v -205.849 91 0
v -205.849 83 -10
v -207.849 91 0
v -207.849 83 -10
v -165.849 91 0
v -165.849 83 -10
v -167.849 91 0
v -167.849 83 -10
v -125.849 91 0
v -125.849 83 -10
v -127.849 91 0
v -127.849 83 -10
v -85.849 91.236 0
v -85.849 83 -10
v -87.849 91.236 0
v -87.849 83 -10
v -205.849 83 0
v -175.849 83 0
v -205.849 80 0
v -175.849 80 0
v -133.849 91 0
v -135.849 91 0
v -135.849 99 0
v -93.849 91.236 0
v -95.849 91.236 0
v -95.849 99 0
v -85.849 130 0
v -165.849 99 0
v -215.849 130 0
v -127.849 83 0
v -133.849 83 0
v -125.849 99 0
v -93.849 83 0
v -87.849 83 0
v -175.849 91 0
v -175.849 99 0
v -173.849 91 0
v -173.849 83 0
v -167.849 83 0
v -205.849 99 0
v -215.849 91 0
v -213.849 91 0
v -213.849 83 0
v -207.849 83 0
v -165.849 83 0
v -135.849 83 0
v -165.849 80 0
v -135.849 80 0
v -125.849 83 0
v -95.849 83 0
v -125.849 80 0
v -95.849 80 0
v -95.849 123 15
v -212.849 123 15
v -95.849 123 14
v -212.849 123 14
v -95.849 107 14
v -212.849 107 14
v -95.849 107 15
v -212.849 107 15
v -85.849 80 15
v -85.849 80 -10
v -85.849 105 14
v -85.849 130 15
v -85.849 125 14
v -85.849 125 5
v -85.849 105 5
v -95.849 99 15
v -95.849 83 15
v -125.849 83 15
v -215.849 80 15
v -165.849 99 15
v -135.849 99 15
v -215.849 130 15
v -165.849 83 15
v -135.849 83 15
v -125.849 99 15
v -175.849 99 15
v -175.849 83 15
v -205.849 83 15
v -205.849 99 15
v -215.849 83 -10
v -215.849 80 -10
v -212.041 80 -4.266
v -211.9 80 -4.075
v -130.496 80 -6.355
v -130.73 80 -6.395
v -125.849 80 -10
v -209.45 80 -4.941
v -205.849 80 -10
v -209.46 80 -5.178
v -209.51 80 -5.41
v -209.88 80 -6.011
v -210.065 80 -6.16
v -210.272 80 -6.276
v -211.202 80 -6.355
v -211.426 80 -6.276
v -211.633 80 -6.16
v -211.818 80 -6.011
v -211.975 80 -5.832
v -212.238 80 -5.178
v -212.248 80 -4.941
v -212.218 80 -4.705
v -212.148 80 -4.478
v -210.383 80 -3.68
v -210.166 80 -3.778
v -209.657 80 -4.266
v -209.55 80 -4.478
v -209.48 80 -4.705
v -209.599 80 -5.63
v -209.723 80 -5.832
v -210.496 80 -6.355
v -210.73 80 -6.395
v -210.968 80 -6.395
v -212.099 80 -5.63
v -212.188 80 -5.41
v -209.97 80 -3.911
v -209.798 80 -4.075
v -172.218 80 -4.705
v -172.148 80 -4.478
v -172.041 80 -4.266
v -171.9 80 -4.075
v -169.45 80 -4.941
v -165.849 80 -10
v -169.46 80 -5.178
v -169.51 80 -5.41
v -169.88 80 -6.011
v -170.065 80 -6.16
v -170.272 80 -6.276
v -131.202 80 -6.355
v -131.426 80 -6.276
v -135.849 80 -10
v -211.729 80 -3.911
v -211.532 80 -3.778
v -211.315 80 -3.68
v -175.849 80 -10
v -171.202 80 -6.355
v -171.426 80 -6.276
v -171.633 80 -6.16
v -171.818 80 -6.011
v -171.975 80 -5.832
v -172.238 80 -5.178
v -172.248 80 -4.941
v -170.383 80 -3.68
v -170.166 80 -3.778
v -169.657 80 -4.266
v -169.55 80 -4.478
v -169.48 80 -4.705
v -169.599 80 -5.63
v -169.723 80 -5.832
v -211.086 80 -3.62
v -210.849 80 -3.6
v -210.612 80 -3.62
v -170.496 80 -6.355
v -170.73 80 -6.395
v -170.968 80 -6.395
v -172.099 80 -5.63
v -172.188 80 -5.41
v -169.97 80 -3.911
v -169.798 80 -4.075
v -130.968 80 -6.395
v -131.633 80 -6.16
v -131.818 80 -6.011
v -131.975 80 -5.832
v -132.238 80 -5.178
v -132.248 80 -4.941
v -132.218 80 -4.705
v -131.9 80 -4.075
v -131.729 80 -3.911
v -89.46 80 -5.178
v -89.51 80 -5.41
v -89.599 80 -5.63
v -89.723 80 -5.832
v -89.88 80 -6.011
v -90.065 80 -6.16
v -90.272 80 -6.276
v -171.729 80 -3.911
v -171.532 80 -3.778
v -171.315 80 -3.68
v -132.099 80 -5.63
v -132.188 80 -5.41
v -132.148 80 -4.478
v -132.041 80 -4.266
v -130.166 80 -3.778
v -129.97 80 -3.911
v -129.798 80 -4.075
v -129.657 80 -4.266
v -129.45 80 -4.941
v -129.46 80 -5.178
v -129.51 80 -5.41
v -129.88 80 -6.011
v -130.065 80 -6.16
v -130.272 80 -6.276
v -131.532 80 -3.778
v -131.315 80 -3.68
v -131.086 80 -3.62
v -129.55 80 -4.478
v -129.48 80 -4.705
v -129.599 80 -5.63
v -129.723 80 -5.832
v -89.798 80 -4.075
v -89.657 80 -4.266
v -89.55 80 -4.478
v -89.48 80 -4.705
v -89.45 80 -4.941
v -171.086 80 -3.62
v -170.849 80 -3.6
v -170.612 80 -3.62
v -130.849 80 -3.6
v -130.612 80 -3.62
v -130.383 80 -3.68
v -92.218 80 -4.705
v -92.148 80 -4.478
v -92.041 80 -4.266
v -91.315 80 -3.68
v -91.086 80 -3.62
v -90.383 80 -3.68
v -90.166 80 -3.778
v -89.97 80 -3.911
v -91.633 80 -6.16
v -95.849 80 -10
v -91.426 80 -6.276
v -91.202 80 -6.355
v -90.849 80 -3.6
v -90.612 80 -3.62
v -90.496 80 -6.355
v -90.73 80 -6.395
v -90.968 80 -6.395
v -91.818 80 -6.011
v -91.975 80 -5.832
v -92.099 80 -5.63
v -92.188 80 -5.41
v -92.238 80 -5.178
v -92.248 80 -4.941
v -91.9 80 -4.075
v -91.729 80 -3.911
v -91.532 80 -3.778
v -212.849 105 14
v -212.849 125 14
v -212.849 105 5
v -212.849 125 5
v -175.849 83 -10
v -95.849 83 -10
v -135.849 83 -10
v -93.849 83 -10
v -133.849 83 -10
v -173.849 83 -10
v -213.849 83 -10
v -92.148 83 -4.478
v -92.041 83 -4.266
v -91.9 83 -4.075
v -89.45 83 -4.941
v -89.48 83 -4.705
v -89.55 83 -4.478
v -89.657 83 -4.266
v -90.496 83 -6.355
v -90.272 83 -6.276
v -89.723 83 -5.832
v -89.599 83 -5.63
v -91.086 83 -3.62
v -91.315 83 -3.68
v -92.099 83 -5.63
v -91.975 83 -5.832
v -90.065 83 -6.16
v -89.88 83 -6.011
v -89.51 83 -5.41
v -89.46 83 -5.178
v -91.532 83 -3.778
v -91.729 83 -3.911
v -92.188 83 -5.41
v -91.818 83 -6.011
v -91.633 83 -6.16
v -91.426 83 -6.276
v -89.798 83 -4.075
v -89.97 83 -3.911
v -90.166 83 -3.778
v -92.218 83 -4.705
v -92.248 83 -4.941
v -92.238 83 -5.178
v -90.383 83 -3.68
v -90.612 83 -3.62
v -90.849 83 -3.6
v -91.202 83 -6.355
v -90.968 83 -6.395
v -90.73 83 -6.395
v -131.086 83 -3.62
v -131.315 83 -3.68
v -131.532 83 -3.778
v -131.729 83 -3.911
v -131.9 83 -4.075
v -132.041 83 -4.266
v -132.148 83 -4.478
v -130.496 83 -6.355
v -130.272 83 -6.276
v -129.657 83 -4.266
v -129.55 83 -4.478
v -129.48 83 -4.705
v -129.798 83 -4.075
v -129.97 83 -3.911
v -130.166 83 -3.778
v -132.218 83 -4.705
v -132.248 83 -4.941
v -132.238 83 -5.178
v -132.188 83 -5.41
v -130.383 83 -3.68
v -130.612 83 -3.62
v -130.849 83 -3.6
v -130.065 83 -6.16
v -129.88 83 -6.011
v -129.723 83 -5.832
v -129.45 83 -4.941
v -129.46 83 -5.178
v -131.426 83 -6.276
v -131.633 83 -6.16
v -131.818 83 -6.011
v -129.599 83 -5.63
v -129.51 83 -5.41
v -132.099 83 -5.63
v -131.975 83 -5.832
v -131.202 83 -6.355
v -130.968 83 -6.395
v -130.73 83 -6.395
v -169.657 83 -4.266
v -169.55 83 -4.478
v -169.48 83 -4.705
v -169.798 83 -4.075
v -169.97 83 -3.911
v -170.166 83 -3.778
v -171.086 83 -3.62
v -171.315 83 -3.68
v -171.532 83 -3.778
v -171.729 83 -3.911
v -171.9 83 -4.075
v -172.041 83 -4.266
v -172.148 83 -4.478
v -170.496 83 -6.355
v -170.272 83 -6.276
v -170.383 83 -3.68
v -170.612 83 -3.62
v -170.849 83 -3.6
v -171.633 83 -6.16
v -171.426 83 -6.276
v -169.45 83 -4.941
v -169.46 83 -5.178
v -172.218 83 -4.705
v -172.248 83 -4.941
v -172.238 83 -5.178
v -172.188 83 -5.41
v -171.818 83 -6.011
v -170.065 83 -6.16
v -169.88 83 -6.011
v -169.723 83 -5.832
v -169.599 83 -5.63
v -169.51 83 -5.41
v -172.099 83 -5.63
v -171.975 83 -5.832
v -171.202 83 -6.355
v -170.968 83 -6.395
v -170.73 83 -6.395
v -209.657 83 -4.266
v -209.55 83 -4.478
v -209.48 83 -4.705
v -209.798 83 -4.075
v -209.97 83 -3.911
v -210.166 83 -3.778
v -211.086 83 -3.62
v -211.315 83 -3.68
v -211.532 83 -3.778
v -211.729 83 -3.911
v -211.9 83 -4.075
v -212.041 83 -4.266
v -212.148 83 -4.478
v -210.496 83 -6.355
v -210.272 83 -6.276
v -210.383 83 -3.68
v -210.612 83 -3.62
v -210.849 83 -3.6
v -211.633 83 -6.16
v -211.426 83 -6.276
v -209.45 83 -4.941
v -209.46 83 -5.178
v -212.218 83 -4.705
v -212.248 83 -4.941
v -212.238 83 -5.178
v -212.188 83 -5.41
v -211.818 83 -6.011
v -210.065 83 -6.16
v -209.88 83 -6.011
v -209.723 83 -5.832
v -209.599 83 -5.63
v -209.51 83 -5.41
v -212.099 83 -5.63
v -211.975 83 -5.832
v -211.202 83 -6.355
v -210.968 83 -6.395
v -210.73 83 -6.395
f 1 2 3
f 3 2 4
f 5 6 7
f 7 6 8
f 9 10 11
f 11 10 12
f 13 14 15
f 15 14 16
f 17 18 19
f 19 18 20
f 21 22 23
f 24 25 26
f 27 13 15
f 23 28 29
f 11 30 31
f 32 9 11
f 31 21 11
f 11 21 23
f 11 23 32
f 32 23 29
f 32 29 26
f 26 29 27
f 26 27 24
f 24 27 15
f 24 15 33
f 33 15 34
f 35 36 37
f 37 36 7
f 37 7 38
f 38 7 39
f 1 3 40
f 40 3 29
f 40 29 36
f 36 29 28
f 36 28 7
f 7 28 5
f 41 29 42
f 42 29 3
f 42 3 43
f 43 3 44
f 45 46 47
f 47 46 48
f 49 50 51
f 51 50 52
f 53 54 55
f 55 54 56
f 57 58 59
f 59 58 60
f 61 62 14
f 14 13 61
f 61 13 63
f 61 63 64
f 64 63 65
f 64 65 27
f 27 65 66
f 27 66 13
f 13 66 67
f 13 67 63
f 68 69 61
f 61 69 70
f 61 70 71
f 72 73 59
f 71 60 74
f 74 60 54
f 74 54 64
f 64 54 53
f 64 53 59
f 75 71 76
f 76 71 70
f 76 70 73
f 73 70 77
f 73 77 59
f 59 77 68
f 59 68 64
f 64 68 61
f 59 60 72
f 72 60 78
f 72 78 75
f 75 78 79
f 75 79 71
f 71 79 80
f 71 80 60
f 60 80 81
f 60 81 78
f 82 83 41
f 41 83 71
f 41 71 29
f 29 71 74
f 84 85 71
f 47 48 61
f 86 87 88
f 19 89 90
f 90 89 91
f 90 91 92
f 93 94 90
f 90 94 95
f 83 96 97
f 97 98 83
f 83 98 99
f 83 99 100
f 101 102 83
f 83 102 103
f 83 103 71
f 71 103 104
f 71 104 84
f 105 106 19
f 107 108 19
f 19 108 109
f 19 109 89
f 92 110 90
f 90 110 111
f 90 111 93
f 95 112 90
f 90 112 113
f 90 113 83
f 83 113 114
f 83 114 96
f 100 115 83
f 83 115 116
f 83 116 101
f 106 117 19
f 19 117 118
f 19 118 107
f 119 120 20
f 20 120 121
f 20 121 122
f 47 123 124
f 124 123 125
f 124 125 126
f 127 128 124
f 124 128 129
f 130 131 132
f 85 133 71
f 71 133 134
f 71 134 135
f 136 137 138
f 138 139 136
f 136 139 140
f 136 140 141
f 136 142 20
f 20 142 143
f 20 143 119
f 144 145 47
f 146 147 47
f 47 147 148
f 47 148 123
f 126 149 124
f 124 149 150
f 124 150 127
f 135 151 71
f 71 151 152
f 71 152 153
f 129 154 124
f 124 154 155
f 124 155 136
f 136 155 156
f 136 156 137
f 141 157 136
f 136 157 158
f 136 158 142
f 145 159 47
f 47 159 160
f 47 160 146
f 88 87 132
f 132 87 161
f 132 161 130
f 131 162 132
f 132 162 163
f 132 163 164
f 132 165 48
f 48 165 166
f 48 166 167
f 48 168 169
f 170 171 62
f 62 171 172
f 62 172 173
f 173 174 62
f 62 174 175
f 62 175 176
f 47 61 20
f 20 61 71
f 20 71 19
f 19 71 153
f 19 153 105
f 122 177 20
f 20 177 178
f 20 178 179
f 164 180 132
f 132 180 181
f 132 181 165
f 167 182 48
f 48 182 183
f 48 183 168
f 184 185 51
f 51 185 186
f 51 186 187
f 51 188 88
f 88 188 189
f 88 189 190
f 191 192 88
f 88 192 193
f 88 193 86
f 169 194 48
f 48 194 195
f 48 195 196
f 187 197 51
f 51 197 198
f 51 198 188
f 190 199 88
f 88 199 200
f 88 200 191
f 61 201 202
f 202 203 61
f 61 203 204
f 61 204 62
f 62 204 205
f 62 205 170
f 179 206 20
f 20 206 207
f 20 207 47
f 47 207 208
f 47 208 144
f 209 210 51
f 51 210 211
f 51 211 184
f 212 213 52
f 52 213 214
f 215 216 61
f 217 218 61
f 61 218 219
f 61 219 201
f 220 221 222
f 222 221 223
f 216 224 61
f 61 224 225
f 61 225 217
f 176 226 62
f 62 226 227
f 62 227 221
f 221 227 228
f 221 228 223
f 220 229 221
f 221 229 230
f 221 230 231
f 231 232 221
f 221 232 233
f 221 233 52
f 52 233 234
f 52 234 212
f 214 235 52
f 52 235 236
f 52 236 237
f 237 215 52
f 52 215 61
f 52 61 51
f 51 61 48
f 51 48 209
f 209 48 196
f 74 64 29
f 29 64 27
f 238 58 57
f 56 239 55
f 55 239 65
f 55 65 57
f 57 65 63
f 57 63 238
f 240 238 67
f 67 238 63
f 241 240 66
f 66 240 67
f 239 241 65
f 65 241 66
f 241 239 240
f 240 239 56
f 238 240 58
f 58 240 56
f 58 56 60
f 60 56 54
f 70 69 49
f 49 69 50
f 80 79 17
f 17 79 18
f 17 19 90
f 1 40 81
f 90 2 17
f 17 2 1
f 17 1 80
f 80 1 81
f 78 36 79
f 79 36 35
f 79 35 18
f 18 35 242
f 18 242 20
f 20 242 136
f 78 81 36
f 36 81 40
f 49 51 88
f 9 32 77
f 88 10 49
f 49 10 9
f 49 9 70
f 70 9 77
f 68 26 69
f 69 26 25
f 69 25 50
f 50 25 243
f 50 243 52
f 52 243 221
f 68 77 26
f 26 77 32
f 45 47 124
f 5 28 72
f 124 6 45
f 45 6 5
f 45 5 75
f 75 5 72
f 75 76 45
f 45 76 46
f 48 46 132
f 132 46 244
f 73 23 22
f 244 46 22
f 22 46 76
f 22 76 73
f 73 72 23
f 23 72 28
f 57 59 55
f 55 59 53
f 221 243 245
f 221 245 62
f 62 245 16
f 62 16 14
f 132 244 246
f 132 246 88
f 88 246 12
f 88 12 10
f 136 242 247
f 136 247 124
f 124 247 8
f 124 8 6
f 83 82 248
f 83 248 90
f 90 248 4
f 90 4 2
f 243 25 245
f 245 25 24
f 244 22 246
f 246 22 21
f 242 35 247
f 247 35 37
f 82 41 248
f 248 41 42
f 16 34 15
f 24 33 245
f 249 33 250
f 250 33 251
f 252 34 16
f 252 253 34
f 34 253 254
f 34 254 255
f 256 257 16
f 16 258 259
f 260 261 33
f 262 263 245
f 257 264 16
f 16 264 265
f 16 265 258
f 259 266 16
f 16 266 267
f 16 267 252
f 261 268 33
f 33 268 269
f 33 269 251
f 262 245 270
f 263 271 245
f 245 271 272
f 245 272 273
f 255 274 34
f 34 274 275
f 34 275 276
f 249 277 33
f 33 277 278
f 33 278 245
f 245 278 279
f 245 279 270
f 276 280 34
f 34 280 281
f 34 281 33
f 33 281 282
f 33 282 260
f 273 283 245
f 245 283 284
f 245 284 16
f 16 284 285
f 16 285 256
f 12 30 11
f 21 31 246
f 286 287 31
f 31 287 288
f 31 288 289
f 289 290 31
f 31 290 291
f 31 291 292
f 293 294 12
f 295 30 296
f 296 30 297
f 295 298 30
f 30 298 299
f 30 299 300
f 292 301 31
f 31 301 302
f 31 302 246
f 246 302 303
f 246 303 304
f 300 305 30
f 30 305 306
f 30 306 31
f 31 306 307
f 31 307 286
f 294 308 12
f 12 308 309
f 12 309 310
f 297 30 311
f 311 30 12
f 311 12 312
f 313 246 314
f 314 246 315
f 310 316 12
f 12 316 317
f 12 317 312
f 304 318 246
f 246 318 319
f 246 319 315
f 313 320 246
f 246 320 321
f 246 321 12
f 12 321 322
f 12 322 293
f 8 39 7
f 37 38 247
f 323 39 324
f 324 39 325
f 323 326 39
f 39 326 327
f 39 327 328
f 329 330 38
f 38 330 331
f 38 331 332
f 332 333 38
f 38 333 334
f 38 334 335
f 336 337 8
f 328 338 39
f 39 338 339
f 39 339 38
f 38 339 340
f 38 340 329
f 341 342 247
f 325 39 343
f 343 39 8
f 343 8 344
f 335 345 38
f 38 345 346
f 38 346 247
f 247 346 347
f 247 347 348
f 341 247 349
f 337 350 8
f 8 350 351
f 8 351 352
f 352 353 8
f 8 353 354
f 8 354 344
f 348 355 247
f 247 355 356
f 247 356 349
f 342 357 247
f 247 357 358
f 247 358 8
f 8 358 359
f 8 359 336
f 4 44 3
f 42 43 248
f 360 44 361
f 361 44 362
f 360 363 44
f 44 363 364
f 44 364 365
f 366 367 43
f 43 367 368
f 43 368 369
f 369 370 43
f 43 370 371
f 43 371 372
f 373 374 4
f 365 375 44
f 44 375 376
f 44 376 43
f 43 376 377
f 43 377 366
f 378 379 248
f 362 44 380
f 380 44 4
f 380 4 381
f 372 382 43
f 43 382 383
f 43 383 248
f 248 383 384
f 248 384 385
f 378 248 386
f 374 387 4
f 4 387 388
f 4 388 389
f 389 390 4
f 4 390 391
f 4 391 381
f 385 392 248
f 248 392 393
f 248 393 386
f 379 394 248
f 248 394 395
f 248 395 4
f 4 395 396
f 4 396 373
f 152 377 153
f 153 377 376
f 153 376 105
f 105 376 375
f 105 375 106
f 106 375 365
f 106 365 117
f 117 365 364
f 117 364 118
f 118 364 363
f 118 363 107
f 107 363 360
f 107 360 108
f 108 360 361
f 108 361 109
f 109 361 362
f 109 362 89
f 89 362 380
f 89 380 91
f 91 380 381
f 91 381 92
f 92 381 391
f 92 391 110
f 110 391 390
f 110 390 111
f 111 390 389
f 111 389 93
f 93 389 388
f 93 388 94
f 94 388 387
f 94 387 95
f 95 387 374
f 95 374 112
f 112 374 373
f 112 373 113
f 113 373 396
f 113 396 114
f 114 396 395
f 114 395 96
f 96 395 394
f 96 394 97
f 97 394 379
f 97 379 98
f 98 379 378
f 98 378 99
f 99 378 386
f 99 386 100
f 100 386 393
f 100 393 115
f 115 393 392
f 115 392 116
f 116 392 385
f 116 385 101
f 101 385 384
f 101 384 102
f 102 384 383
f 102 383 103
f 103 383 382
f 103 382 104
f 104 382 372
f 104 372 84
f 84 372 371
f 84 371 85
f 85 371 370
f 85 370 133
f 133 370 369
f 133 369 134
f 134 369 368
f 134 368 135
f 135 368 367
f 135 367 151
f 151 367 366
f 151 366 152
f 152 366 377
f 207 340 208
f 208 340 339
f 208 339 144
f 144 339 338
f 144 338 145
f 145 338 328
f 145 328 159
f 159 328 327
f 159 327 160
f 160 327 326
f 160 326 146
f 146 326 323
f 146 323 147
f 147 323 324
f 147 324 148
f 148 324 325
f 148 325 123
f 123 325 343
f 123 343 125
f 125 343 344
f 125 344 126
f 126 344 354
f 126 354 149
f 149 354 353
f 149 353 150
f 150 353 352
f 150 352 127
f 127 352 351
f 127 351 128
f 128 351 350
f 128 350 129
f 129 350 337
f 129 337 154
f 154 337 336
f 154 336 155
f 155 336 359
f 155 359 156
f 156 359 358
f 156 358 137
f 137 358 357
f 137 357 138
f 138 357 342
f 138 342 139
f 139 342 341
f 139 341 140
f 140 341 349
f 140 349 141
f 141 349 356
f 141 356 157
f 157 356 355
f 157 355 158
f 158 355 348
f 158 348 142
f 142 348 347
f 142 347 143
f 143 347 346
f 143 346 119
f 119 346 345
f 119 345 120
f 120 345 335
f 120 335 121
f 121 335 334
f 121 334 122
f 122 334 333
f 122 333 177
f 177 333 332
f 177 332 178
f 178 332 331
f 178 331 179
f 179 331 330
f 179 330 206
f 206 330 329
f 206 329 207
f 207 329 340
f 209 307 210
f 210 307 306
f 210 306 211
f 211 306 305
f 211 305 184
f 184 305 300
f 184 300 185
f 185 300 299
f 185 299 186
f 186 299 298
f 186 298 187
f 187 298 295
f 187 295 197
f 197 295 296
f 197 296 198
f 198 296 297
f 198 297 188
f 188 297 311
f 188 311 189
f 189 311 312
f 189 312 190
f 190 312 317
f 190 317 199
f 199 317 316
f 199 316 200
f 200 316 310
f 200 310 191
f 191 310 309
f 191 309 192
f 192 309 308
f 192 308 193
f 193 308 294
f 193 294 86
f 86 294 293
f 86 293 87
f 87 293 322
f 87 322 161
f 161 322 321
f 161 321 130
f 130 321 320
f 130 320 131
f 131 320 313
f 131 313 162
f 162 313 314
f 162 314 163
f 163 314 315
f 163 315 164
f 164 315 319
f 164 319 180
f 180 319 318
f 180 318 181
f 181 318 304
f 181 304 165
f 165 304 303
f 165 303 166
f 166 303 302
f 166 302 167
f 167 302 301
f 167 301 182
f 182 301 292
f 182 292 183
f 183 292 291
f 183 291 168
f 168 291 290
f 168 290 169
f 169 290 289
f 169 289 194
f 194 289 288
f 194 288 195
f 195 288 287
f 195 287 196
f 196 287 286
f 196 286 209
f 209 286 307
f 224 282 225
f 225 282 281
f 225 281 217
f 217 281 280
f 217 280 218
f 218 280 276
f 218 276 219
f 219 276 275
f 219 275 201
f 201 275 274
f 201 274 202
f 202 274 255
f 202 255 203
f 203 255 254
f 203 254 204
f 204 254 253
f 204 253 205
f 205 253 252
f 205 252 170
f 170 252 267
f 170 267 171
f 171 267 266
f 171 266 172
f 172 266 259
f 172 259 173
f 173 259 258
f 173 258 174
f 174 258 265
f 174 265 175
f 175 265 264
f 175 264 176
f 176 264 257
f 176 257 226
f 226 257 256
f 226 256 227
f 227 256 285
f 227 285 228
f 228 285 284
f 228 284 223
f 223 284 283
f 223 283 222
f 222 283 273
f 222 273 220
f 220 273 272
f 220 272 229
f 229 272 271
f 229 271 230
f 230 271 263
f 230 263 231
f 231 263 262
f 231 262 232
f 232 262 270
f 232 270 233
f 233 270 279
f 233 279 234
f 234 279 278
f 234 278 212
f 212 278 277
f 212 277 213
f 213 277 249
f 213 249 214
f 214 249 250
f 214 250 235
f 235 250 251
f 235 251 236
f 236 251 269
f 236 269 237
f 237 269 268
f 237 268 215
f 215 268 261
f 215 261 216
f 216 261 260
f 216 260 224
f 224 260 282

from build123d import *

# Parameters (mm, degrees)
SKETCH1_W               = 130
SKETCH1_H               = 50
BOSS_EXTRUDE1_DEPTH     = 15
CUT_EXTRUDE1_DEPTH      = 1
CUT_EXTRUDE1_DEPTH_BACK = 127
SKETCH4_W               = 10
SKETCH4_H               = 3
BOSS_EXTRUDE2_DEPTH     = 10
SKETCH6_W               = 30
SKETCH6_H               = 16
CUT_EXTRUDE2_DEPTH      = 16
SKETCH7_R               = 1.375
CUT_EXTRUDE3_DEPTH      = 4
SKETCH9_W               = 10
SKETCH9_H               = 3
BOSS_EXTRUDE4_DEPTH     = 10
SKETCH10_R              = 1.375
CUT_EXTRUDE4_DEPTH      = 10
SKETCH11_W              = 10
SKETCH11_H              = 1
BOSS_EXTRUDE5_DEPTH     = 20
SKETCH13_W              = 10
SKETCH13_H              = 3
CUT_EXTRUDE5_DEPTH      = 10
SKETCH14_W              = 10
SKETCH14_H              = 3
CUT_EXTRUDE6_DEPTH      = 10
SKETCH15_W              = 10
SKETCH15_H              = 3
CUT_EXTRUDE7_DEPTH      = 10
SKETCH16_W              = 10
SKETCH16_H              = 3
BOSS_EXTRUDE6_DEPTH     = 10
BOSS_EXTRUDE8_DEPTH     = 10
BOSS_EXTRUDE9_DEPTH     = 10
BOSS_EXTRUDE10_DEPTH    = 10
BOSS_EXTRUDE11_DEPTH    = 10
SKETCH29_W              = 6
SKETCH29_H              = 10
CUT_EXTRUDE10_DEPTH     = 10
SKETCH30_W              = 6
SKETCH30_H              = 10
CUT_EXTRUDE11_DEPTH     = 10
SKETCH31_W              = 6
SKETCH31_H              = 10
CUT_EXTRUDE12_DEPTH     = 10
SKETCH32_W              = 6
SKETCH32_H              = 10
CUT_EXTRUDE13_DEPTH     = 10
SKETCH35_R              = 1.4
CUT_EXTRUDE14_DEPTH     = 5


with BuildPart() as part:
    # Sketch1 → Boss-Extrude1 (new body)
    with BuildSketch(Plane.XY):
        with Locations((-150.849056604, 105)):
            Rectangle(SKETCH1_W, SKETCH1_H)
    extrude(amount=BOSS_EXTRUDE1_DEPTH)

    # Sketch3 → Cut-Extrude1 (cut, two sides)
    with BuildSketch(Plane(origin=(-85.849056604, 0, 0), x_dir=(0, 0, -1), z_dir=(1, 0, 0))) as cut_extrude1_sk:
        Polygon((-14, 125), (-5, 125), (-5, 105), (-14, 105), (-14, 107), (-15, 107), (-15, 123), (-14, 123), align=None)
    extrude(amount=CUT_EXTRUDE1_DEPTH, mode=Mode.SUBTRACT)
    extrude(cut_extrude1_sk.sketch, amount=-CUT_EXTRUDE1_DEPTH_BACK, mode=Mode.SUBTRACT)

    # Sketch4 → Boss-Extrude2 (add)
    with BuildSketch(Plane(origin=(0, 0, 0), x_dir=(-1, 0, 0), z_dir=(0, 0, -1))):
        with Locations((105.849056604, 81.5)):
            Rectangle(SKETCH4_W, SKETCH4_H)
        with Locations((195.849056604, 81.5)):
            Rectangle(SKETCH4_W, SKETCH4_H)
    extrude(amount=BOSS_EXTRUDE2_DEPTH)

    # Sketch6 → Cut-Extrude2 (cut, through all)
    with BuildSketch(Plane(origin=(0, 0, 0), x_dir=(-1, 0, 0), z_dir=(0, 0, -1))):
        with Locations((190.849056604, 91)):
            Rectangle(SKETCH6_W, SKETCH6_H)
        with Locations((150.849056604, 91)):
            Rectangle(SKETCH6_W, SKETCH6_H)
        with Locations((110.849056604, 91)):
            Rectangle(SKETCH6_W, SKETCH6_H)
    extrude(amount=-CUT_EXTRUDE2_DEPTH, mode=Mode.SUBTRACT)

    # Sketch7 → Cut-Extrude3 (cut, through all)
    with BuildSketch(Plane(origin=(0, 83, 0), x_dir=(1, 0, 0), z_dir=(0, 1, 0))):
        with Locations((-105.849056604, 5)):
            Circle(SKETCH7_R)
    cut_extrude3 = extrude(amount=-CUT_EXTRUDE3_DEPTH, mode=Mode.SUBTRACT)

    # Mirror1: Cut-Extrude3 across plane
    add(cut_extrude3.mirror(Plane(origin=(-151, 0, 0), x_dir=(0, 0, 1), z_dir=(1, 0, 0))), mode=Mode.SUBTRACT)

    # Sketch9 → Boss-Extrude4 (add)
    with BuildSketch(Plane(origin=(0, 0, 0), x_dir=(-1, 0, 0), z_dir=(0, 0, -1))):
        with Locations((150.849056604, 81.5)):
            Rectangle(SKETCH9_W, SKETCH9_H)
    extrude(amount=BOSS_EXTRUDE4_DEPTH)

    # Sketch10 → Cut-Extrude4 (cut)
    with BuildSketch(Plane(origin=(0, 83, 0), x_dir=(1, 0, 0), z_dir=(0, 1, 0))):
        with Locations((-150.849056604, 5)):
            Circle(SKETCH10_R)
    extrude(amount=-CUT_EXTRUDE4_DEPTH, mode=Mode.SUBTRACT)

    # Sketch11 → Boss-Extrude5 (add)
    with BuildSketch(Plane(origin=(0, 107, 0), x_dir=(1, 0, 0), z_dir=(0, 1, 0))):
        with Locations((-90.849056604, -14.5)):
            Rectangle(SKETCH11_W, SKETCH11_H)
    extrude(amount=BOSS_EXTRUDE5_DEPTH)

    # Sketch13 → Cut-Extrude5 (cut)
    with BuildSketch(Plane(origin=(0, 0, -10), x_dir=(-1, 0, 0), z_dir=(0, 0, -1))):
        with Locations((105.849056604, 81.5)):
            Rectangle(SKETCH13_W, SKETCH13_H)
    extrude(amount=-CUT_EXTRUDE5_DEPTH, mode=Mode.SUBTRACT)

    # Sketch14 → Cut-Extrude6 (cut)
    with BuildSketch(Plane(origin=(0, 0, -10), x_dir=(-1, 0, 0), z_dir=(0, 0, -1))):
        with Locations((150.849056604, 81.5)):
            Rectangle(SKETCH14_W, SKETCH14_H)
    extrude(amount=-CUT_EXTRUDE6_DEPTH, mode=Mode.SUBTRACT)

    # Sketch15 → Cut-Extrude7 (cut)
    with BuildSketch(Plane(origin=(0, 0, -10), x_dir=(-1, 0, 0), z_dir=(0, 0, -1))):
        with Locations((195.849056604, 81.5)):
            Rectangle(SKETCH15_W, SKETCH15_H)
    extrude(amount=-CUT_EXTRUDE7_DEPTH, mode=Mode.SUBTRACT)

    # Sketch16 → Boss-Extrude6 (add)
    with BuildSketch(Plane(origin=(0, 0, 0), x_dir=(-1, 0, 0), z_dir=(0, 0, -1))):
        with Locations((90.849056604, 81.5)):
            Rectangle(SKETCH16_W, SKETCH16_H)
        with Locations((130.849056604, 81.5)):
            Rectangle(SKETCH16_W, SKETCH16_H)
        with Locations((170.849056604, 81.5)):
            Rectangle(SKETCH16_W, SKETCH16_H)
        with Locations((210.849056604, 81.5)):
            Rectangle(SKETCH16_W, SKETCH16_H)
    extrude(amount=BOSS_EXTRUDE6_DEPTH)

    # Sketch18 → Boss-Extrude8 (add)
    with BuildSketch(Plane(origin=(-85.849056604, 0, 0), x_dir=(0, 0, -1), z_dir=(1, 0, 0))):
        Polygon((10, 83), (0, 91.236285037), (0, 83), align=None)
    extrude(amount=-BOSS_EXTRUDE8_DEPTH)

    # Sketch20 → Boss-Extrude9 (add)
    with BuildSketch(Plane(origin=(-125.849056604, 0, 0), x_dir=(0, 0, -1), z_dir=(1, 0, 0))):
        Polygon((0, 83), (0, 91), (10, 83), align=None)
    extrude(amount=-BOSS_EXTRUDE9_DEPTH)

    # Sketch21 → Boss-Extrude10 (add)
    with BuildSketch(Plane(origin=(-165.849056604, 0, 0), x_dir=(0, 0, -1), z_dir=(1, 0, 0))):
        Polygon((0, 83), (0, 91), (10, 83), align=None)
    extrude(amount=-BOSS_EXTRUDE10_DEPTH)

    # Sketch22 → Boss-Extrude11 (add)
    with BuildSketch(Plane(origin=(-205.849056604, 0, 0), x_dir=(0, 0, -1), z_dir=(1, 0, 0))):
        Polygon((0, 83), (0, 91), (10, 83), align=None)
    extrude(amount=-BOSS_EXTRUDE11_DEPTH)

    # Sketch29 → Cut-Extrude10 (cut)
    with BuildSketch(Plane(origin=(0, 0, -10), x_dir=(-1, 0, 0), z_dir=(0, 0, -1))):
        with Locations((90.849056604, 88)):
            Rectangle(SKETCH29_W, SKETCH29_H)
    extrude(amount=-CUT_EXTRUDE10_DEPTH, mode=Mode.SUBTRACT)

    # Sketch30 → Cut-Extrude11 (cut)
    with BuildSketch(Plane(origin=(0, 0, -10), x_dir=(-1, 0, 0), z_dir=(0, 0, -1))):
        with Locations((130.849056604, 88)):
            Rectangle(SKETCH30_W, SKETCH30_H)
    extrude(amount=-CUT_EXTRUDE11_DEPTH, mode=Mode.SUBTRACT)

    # Sketch31 → Cut-Extrude12 (cut)
    with BuildSketch(Plane(origin=(0, 0, -10), x_dir=(-1, 0, 0), z_dir=(0, 0, -1))):
        with Locations((170.849056604, 88)):
            Rectangle(SKETCH31_W, SKETCH31_H)
    extrude(amount=-CUT_EXTRUDE12_DEPTH, mode=Mode.SUBTRACT)

    # Sketch32 → Cut-Extrude13 (cut)
    with BuildSketch(Plane(origin=(0, 0, -10), x_dir=(-1, 0, 0), z_dir=(0, 0, -1))):
        with Locations((210.849056604, 88)):
            Rectangle(SKETCH32_W, SKETCH32_H)
    extrude(amount=-CUT_EXTRUDE13_DEPTH, mode=Mode.SUBTRACT)

    # Sketch35 → Cut-Extrude14 (cut)
    with BuildSketch(Plane(origin=(0, 83, 0), x_dir=(1, 0, 0), z_dir=(0, 1, 0))):
        with Locations((-210.849056604, 5)):
            Circle(SKETCH35_R)
        with Locations((-170.849056604, 5)):
            Circle(SKETCH35_R)
        with Locations((-130.849056604, 5)):
            Circle(SKETCH35_R)
        with Locations((-90.849056604, 5)):
            Circle(SKETCH35_R)
    extrude(amount=-CUT_EXTRUDE14_DEPTH, mode=Mode.SUBTRACT)


solid = part.part
